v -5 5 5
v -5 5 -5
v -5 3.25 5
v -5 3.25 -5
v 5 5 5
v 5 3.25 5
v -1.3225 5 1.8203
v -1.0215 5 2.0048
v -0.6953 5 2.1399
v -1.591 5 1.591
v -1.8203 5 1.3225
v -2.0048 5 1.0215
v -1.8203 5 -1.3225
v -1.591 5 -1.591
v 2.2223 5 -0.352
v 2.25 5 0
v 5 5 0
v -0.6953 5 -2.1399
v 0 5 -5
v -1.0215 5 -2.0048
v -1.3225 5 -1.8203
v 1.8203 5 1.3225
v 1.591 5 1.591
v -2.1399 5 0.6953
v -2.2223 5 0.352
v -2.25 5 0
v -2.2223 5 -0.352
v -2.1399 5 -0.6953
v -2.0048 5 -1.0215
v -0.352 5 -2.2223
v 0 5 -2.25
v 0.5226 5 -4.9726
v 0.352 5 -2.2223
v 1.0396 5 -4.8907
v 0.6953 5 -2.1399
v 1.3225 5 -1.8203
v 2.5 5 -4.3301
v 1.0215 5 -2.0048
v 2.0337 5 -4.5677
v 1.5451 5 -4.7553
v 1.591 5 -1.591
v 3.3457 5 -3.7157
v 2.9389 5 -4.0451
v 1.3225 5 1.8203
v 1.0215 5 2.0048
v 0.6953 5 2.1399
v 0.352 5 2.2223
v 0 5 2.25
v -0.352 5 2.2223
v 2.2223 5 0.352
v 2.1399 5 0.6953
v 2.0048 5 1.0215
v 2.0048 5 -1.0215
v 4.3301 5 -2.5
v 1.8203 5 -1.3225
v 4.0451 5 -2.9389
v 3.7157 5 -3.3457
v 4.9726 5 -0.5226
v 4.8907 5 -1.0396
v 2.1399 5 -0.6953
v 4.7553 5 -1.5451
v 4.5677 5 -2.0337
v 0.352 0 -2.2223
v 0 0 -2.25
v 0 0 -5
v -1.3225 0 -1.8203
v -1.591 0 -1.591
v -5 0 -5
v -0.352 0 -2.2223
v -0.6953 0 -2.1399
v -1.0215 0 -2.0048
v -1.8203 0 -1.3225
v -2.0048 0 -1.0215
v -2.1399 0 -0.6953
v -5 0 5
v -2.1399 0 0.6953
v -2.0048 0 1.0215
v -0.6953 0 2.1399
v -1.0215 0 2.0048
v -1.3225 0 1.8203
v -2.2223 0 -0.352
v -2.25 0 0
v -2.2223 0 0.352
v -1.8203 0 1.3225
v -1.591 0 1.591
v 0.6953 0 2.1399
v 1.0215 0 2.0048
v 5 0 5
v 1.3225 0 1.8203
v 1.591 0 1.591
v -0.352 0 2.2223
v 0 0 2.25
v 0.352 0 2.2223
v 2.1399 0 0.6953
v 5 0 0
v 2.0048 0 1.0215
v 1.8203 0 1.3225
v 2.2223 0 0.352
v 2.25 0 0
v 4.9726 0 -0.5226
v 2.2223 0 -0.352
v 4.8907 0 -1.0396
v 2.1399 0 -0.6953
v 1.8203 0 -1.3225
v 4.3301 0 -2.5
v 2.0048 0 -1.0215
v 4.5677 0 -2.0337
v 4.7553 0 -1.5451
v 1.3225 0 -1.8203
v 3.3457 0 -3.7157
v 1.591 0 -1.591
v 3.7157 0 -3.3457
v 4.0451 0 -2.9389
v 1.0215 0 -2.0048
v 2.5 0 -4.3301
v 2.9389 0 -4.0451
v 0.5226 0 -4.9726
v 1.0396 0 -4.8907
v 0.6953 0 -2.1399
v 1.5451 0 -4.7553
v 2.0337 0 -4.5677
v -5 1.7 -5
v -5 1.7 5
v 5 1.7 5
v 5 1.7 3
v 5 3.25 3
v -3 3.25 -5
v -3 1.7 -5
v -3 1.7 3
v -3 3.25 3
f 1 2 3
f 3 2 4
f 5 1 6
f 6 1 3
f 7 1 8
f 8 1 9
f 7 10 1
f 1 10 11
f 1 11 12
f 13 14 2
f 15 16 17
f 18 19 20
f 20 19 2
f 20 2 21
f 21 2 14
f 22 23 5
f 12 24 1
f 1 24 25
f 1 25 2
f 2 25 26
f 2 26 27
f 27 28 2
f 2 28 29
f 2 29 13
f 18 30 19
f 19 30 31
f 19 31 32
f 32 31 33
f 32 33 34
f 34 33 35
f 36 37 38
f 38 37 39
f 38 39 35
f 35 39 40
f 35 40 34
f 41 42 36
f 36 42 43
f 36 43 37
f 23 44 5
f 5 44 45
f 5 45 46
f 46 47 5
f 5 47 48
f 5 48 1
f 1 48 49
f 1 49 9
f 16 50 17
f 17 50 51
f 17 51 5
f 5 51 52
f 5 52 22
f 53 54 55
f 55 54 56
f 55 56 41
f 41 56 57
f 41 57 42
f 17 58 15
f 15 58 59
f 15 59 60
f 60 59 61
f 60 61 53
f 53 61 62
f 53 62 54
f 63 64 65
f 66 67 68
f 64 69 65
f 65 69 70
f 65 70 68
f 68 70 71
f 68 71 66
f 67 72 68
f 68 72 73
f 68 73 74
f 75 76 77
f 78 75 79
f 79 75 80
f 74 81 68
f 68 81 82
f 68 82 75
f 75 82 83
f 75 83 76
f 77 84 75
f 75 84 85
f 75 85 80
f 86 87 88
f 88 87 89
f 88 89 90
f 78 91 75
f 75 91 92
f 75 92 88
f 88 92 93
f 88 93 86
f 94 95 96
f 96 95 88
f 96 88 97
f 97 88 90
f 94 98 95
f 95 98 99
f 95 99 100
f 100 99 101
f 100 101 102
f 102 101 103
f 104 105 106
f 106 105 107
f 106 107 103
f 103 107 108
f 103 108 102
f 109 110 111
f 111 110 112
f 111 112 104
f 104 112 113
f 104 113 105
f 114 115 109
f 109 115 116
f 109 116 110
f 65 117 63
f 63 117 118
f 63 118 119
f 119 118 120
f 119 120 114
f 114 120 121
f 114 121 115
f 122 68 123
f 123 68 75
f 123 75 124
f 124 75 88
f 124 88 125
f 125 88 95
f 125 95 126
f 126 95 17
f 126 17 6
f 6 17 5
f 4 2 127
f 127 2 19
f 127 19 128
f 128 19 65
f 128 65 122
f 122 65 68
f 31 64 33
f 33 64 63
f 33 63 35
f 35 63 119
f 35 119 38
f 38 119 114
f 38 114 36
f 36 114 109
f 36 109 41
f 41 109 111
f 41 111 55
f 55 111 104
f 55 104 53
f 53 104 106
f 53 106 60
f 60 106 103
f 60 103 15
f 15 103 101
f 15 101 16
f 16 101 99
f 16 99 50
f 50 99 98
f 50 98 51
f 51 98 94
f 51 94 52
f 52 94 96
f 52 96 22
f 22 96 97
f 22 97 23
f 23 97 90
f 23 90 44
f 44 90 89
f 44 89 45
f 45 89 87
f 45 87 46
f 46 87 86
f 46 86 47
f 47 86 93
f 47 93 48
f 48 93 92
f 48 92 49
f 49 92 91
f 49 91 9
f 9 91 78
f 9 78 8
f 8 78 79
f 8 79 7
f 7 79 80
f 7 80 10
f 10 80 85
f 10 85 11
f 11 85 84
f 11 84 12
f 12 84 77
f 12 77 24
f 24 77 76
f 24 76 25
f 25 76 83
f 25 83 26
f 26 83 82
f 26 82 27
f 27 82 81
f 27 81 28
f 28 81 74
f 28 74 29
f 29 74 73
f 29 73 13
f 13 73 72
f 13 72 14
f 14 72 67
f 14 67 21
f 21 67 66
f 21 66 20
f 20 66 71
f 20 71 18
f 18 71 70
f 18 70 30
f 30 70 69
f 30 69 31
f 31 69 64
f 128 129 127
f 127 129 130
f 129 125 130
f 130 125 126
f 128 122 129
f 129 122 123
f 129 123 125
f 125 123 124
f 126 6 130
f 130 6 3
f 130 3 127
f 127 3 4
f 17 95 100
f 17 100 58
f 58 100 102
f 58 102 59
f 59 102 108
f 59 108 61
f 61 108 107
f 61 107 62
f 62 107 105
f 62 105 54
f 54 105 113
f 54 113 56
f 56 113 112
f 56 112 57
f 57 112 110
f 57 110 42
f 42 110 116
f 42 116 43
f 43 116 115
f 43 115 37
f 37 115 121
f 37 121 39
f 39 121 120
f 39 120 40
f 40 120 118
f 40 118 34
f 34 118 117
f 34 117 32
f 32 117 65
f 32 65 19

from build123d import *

# Parameters (mm, degrees)
SKETCH1_W           = 10
SKETCH1_H           = 10
SKETCH1_R           = 2.25
BOSS_EXTRUDE1_DEPTH = 5
CUT_EXTRUDE1_START  = -1.75
CUT_EXTRUDE1_DEPTH  = 1.55
FILLET1_R           = 5


with BuildPart() as part:
    # Sketch1 → Boss-Extrude1 (new body)
    with BuildSketch(Plane(origin=(0, 0, 0), x_dir=(1, 0, 0), z_dir=(0, 1, 0))):
        Rectangle(SKETCH1_W, SKETCH1_H)
        with Locations(Location((0, 0, 0), (0, 0, 270))):
            Circle(SKETCH1_R, mode=Mode.SUBTRACT)
    extrude(amount=BOSS_EXTRUDE1_DEPTH)

    # Sketch2 → Cut-Extrude1 (cut)
    with BuildSketch(Plane(origin=(0, 5, 0), x_dir=(1, 0, 0), z_dir=(0, 1, 0)).offset(CUT_EXTRUDE1_START)):
        Polygon((-3, 5), (-5, 5), (-5, -5), (5, -5), (5, -3), (-3, -3), align=None)
    extrude(amount=-CUT_EXTRUDE1_DEPTH, mode=Mode.SUBTRACT)

    # Fillet1
    fillet1_edges = [part.edges().sort_by_distance(p)[0] for p in [
        (5, 2.5, -5),
    ]]
    fillet(fillet1_edges, radius=FILLET1_R)


solid = part.part
